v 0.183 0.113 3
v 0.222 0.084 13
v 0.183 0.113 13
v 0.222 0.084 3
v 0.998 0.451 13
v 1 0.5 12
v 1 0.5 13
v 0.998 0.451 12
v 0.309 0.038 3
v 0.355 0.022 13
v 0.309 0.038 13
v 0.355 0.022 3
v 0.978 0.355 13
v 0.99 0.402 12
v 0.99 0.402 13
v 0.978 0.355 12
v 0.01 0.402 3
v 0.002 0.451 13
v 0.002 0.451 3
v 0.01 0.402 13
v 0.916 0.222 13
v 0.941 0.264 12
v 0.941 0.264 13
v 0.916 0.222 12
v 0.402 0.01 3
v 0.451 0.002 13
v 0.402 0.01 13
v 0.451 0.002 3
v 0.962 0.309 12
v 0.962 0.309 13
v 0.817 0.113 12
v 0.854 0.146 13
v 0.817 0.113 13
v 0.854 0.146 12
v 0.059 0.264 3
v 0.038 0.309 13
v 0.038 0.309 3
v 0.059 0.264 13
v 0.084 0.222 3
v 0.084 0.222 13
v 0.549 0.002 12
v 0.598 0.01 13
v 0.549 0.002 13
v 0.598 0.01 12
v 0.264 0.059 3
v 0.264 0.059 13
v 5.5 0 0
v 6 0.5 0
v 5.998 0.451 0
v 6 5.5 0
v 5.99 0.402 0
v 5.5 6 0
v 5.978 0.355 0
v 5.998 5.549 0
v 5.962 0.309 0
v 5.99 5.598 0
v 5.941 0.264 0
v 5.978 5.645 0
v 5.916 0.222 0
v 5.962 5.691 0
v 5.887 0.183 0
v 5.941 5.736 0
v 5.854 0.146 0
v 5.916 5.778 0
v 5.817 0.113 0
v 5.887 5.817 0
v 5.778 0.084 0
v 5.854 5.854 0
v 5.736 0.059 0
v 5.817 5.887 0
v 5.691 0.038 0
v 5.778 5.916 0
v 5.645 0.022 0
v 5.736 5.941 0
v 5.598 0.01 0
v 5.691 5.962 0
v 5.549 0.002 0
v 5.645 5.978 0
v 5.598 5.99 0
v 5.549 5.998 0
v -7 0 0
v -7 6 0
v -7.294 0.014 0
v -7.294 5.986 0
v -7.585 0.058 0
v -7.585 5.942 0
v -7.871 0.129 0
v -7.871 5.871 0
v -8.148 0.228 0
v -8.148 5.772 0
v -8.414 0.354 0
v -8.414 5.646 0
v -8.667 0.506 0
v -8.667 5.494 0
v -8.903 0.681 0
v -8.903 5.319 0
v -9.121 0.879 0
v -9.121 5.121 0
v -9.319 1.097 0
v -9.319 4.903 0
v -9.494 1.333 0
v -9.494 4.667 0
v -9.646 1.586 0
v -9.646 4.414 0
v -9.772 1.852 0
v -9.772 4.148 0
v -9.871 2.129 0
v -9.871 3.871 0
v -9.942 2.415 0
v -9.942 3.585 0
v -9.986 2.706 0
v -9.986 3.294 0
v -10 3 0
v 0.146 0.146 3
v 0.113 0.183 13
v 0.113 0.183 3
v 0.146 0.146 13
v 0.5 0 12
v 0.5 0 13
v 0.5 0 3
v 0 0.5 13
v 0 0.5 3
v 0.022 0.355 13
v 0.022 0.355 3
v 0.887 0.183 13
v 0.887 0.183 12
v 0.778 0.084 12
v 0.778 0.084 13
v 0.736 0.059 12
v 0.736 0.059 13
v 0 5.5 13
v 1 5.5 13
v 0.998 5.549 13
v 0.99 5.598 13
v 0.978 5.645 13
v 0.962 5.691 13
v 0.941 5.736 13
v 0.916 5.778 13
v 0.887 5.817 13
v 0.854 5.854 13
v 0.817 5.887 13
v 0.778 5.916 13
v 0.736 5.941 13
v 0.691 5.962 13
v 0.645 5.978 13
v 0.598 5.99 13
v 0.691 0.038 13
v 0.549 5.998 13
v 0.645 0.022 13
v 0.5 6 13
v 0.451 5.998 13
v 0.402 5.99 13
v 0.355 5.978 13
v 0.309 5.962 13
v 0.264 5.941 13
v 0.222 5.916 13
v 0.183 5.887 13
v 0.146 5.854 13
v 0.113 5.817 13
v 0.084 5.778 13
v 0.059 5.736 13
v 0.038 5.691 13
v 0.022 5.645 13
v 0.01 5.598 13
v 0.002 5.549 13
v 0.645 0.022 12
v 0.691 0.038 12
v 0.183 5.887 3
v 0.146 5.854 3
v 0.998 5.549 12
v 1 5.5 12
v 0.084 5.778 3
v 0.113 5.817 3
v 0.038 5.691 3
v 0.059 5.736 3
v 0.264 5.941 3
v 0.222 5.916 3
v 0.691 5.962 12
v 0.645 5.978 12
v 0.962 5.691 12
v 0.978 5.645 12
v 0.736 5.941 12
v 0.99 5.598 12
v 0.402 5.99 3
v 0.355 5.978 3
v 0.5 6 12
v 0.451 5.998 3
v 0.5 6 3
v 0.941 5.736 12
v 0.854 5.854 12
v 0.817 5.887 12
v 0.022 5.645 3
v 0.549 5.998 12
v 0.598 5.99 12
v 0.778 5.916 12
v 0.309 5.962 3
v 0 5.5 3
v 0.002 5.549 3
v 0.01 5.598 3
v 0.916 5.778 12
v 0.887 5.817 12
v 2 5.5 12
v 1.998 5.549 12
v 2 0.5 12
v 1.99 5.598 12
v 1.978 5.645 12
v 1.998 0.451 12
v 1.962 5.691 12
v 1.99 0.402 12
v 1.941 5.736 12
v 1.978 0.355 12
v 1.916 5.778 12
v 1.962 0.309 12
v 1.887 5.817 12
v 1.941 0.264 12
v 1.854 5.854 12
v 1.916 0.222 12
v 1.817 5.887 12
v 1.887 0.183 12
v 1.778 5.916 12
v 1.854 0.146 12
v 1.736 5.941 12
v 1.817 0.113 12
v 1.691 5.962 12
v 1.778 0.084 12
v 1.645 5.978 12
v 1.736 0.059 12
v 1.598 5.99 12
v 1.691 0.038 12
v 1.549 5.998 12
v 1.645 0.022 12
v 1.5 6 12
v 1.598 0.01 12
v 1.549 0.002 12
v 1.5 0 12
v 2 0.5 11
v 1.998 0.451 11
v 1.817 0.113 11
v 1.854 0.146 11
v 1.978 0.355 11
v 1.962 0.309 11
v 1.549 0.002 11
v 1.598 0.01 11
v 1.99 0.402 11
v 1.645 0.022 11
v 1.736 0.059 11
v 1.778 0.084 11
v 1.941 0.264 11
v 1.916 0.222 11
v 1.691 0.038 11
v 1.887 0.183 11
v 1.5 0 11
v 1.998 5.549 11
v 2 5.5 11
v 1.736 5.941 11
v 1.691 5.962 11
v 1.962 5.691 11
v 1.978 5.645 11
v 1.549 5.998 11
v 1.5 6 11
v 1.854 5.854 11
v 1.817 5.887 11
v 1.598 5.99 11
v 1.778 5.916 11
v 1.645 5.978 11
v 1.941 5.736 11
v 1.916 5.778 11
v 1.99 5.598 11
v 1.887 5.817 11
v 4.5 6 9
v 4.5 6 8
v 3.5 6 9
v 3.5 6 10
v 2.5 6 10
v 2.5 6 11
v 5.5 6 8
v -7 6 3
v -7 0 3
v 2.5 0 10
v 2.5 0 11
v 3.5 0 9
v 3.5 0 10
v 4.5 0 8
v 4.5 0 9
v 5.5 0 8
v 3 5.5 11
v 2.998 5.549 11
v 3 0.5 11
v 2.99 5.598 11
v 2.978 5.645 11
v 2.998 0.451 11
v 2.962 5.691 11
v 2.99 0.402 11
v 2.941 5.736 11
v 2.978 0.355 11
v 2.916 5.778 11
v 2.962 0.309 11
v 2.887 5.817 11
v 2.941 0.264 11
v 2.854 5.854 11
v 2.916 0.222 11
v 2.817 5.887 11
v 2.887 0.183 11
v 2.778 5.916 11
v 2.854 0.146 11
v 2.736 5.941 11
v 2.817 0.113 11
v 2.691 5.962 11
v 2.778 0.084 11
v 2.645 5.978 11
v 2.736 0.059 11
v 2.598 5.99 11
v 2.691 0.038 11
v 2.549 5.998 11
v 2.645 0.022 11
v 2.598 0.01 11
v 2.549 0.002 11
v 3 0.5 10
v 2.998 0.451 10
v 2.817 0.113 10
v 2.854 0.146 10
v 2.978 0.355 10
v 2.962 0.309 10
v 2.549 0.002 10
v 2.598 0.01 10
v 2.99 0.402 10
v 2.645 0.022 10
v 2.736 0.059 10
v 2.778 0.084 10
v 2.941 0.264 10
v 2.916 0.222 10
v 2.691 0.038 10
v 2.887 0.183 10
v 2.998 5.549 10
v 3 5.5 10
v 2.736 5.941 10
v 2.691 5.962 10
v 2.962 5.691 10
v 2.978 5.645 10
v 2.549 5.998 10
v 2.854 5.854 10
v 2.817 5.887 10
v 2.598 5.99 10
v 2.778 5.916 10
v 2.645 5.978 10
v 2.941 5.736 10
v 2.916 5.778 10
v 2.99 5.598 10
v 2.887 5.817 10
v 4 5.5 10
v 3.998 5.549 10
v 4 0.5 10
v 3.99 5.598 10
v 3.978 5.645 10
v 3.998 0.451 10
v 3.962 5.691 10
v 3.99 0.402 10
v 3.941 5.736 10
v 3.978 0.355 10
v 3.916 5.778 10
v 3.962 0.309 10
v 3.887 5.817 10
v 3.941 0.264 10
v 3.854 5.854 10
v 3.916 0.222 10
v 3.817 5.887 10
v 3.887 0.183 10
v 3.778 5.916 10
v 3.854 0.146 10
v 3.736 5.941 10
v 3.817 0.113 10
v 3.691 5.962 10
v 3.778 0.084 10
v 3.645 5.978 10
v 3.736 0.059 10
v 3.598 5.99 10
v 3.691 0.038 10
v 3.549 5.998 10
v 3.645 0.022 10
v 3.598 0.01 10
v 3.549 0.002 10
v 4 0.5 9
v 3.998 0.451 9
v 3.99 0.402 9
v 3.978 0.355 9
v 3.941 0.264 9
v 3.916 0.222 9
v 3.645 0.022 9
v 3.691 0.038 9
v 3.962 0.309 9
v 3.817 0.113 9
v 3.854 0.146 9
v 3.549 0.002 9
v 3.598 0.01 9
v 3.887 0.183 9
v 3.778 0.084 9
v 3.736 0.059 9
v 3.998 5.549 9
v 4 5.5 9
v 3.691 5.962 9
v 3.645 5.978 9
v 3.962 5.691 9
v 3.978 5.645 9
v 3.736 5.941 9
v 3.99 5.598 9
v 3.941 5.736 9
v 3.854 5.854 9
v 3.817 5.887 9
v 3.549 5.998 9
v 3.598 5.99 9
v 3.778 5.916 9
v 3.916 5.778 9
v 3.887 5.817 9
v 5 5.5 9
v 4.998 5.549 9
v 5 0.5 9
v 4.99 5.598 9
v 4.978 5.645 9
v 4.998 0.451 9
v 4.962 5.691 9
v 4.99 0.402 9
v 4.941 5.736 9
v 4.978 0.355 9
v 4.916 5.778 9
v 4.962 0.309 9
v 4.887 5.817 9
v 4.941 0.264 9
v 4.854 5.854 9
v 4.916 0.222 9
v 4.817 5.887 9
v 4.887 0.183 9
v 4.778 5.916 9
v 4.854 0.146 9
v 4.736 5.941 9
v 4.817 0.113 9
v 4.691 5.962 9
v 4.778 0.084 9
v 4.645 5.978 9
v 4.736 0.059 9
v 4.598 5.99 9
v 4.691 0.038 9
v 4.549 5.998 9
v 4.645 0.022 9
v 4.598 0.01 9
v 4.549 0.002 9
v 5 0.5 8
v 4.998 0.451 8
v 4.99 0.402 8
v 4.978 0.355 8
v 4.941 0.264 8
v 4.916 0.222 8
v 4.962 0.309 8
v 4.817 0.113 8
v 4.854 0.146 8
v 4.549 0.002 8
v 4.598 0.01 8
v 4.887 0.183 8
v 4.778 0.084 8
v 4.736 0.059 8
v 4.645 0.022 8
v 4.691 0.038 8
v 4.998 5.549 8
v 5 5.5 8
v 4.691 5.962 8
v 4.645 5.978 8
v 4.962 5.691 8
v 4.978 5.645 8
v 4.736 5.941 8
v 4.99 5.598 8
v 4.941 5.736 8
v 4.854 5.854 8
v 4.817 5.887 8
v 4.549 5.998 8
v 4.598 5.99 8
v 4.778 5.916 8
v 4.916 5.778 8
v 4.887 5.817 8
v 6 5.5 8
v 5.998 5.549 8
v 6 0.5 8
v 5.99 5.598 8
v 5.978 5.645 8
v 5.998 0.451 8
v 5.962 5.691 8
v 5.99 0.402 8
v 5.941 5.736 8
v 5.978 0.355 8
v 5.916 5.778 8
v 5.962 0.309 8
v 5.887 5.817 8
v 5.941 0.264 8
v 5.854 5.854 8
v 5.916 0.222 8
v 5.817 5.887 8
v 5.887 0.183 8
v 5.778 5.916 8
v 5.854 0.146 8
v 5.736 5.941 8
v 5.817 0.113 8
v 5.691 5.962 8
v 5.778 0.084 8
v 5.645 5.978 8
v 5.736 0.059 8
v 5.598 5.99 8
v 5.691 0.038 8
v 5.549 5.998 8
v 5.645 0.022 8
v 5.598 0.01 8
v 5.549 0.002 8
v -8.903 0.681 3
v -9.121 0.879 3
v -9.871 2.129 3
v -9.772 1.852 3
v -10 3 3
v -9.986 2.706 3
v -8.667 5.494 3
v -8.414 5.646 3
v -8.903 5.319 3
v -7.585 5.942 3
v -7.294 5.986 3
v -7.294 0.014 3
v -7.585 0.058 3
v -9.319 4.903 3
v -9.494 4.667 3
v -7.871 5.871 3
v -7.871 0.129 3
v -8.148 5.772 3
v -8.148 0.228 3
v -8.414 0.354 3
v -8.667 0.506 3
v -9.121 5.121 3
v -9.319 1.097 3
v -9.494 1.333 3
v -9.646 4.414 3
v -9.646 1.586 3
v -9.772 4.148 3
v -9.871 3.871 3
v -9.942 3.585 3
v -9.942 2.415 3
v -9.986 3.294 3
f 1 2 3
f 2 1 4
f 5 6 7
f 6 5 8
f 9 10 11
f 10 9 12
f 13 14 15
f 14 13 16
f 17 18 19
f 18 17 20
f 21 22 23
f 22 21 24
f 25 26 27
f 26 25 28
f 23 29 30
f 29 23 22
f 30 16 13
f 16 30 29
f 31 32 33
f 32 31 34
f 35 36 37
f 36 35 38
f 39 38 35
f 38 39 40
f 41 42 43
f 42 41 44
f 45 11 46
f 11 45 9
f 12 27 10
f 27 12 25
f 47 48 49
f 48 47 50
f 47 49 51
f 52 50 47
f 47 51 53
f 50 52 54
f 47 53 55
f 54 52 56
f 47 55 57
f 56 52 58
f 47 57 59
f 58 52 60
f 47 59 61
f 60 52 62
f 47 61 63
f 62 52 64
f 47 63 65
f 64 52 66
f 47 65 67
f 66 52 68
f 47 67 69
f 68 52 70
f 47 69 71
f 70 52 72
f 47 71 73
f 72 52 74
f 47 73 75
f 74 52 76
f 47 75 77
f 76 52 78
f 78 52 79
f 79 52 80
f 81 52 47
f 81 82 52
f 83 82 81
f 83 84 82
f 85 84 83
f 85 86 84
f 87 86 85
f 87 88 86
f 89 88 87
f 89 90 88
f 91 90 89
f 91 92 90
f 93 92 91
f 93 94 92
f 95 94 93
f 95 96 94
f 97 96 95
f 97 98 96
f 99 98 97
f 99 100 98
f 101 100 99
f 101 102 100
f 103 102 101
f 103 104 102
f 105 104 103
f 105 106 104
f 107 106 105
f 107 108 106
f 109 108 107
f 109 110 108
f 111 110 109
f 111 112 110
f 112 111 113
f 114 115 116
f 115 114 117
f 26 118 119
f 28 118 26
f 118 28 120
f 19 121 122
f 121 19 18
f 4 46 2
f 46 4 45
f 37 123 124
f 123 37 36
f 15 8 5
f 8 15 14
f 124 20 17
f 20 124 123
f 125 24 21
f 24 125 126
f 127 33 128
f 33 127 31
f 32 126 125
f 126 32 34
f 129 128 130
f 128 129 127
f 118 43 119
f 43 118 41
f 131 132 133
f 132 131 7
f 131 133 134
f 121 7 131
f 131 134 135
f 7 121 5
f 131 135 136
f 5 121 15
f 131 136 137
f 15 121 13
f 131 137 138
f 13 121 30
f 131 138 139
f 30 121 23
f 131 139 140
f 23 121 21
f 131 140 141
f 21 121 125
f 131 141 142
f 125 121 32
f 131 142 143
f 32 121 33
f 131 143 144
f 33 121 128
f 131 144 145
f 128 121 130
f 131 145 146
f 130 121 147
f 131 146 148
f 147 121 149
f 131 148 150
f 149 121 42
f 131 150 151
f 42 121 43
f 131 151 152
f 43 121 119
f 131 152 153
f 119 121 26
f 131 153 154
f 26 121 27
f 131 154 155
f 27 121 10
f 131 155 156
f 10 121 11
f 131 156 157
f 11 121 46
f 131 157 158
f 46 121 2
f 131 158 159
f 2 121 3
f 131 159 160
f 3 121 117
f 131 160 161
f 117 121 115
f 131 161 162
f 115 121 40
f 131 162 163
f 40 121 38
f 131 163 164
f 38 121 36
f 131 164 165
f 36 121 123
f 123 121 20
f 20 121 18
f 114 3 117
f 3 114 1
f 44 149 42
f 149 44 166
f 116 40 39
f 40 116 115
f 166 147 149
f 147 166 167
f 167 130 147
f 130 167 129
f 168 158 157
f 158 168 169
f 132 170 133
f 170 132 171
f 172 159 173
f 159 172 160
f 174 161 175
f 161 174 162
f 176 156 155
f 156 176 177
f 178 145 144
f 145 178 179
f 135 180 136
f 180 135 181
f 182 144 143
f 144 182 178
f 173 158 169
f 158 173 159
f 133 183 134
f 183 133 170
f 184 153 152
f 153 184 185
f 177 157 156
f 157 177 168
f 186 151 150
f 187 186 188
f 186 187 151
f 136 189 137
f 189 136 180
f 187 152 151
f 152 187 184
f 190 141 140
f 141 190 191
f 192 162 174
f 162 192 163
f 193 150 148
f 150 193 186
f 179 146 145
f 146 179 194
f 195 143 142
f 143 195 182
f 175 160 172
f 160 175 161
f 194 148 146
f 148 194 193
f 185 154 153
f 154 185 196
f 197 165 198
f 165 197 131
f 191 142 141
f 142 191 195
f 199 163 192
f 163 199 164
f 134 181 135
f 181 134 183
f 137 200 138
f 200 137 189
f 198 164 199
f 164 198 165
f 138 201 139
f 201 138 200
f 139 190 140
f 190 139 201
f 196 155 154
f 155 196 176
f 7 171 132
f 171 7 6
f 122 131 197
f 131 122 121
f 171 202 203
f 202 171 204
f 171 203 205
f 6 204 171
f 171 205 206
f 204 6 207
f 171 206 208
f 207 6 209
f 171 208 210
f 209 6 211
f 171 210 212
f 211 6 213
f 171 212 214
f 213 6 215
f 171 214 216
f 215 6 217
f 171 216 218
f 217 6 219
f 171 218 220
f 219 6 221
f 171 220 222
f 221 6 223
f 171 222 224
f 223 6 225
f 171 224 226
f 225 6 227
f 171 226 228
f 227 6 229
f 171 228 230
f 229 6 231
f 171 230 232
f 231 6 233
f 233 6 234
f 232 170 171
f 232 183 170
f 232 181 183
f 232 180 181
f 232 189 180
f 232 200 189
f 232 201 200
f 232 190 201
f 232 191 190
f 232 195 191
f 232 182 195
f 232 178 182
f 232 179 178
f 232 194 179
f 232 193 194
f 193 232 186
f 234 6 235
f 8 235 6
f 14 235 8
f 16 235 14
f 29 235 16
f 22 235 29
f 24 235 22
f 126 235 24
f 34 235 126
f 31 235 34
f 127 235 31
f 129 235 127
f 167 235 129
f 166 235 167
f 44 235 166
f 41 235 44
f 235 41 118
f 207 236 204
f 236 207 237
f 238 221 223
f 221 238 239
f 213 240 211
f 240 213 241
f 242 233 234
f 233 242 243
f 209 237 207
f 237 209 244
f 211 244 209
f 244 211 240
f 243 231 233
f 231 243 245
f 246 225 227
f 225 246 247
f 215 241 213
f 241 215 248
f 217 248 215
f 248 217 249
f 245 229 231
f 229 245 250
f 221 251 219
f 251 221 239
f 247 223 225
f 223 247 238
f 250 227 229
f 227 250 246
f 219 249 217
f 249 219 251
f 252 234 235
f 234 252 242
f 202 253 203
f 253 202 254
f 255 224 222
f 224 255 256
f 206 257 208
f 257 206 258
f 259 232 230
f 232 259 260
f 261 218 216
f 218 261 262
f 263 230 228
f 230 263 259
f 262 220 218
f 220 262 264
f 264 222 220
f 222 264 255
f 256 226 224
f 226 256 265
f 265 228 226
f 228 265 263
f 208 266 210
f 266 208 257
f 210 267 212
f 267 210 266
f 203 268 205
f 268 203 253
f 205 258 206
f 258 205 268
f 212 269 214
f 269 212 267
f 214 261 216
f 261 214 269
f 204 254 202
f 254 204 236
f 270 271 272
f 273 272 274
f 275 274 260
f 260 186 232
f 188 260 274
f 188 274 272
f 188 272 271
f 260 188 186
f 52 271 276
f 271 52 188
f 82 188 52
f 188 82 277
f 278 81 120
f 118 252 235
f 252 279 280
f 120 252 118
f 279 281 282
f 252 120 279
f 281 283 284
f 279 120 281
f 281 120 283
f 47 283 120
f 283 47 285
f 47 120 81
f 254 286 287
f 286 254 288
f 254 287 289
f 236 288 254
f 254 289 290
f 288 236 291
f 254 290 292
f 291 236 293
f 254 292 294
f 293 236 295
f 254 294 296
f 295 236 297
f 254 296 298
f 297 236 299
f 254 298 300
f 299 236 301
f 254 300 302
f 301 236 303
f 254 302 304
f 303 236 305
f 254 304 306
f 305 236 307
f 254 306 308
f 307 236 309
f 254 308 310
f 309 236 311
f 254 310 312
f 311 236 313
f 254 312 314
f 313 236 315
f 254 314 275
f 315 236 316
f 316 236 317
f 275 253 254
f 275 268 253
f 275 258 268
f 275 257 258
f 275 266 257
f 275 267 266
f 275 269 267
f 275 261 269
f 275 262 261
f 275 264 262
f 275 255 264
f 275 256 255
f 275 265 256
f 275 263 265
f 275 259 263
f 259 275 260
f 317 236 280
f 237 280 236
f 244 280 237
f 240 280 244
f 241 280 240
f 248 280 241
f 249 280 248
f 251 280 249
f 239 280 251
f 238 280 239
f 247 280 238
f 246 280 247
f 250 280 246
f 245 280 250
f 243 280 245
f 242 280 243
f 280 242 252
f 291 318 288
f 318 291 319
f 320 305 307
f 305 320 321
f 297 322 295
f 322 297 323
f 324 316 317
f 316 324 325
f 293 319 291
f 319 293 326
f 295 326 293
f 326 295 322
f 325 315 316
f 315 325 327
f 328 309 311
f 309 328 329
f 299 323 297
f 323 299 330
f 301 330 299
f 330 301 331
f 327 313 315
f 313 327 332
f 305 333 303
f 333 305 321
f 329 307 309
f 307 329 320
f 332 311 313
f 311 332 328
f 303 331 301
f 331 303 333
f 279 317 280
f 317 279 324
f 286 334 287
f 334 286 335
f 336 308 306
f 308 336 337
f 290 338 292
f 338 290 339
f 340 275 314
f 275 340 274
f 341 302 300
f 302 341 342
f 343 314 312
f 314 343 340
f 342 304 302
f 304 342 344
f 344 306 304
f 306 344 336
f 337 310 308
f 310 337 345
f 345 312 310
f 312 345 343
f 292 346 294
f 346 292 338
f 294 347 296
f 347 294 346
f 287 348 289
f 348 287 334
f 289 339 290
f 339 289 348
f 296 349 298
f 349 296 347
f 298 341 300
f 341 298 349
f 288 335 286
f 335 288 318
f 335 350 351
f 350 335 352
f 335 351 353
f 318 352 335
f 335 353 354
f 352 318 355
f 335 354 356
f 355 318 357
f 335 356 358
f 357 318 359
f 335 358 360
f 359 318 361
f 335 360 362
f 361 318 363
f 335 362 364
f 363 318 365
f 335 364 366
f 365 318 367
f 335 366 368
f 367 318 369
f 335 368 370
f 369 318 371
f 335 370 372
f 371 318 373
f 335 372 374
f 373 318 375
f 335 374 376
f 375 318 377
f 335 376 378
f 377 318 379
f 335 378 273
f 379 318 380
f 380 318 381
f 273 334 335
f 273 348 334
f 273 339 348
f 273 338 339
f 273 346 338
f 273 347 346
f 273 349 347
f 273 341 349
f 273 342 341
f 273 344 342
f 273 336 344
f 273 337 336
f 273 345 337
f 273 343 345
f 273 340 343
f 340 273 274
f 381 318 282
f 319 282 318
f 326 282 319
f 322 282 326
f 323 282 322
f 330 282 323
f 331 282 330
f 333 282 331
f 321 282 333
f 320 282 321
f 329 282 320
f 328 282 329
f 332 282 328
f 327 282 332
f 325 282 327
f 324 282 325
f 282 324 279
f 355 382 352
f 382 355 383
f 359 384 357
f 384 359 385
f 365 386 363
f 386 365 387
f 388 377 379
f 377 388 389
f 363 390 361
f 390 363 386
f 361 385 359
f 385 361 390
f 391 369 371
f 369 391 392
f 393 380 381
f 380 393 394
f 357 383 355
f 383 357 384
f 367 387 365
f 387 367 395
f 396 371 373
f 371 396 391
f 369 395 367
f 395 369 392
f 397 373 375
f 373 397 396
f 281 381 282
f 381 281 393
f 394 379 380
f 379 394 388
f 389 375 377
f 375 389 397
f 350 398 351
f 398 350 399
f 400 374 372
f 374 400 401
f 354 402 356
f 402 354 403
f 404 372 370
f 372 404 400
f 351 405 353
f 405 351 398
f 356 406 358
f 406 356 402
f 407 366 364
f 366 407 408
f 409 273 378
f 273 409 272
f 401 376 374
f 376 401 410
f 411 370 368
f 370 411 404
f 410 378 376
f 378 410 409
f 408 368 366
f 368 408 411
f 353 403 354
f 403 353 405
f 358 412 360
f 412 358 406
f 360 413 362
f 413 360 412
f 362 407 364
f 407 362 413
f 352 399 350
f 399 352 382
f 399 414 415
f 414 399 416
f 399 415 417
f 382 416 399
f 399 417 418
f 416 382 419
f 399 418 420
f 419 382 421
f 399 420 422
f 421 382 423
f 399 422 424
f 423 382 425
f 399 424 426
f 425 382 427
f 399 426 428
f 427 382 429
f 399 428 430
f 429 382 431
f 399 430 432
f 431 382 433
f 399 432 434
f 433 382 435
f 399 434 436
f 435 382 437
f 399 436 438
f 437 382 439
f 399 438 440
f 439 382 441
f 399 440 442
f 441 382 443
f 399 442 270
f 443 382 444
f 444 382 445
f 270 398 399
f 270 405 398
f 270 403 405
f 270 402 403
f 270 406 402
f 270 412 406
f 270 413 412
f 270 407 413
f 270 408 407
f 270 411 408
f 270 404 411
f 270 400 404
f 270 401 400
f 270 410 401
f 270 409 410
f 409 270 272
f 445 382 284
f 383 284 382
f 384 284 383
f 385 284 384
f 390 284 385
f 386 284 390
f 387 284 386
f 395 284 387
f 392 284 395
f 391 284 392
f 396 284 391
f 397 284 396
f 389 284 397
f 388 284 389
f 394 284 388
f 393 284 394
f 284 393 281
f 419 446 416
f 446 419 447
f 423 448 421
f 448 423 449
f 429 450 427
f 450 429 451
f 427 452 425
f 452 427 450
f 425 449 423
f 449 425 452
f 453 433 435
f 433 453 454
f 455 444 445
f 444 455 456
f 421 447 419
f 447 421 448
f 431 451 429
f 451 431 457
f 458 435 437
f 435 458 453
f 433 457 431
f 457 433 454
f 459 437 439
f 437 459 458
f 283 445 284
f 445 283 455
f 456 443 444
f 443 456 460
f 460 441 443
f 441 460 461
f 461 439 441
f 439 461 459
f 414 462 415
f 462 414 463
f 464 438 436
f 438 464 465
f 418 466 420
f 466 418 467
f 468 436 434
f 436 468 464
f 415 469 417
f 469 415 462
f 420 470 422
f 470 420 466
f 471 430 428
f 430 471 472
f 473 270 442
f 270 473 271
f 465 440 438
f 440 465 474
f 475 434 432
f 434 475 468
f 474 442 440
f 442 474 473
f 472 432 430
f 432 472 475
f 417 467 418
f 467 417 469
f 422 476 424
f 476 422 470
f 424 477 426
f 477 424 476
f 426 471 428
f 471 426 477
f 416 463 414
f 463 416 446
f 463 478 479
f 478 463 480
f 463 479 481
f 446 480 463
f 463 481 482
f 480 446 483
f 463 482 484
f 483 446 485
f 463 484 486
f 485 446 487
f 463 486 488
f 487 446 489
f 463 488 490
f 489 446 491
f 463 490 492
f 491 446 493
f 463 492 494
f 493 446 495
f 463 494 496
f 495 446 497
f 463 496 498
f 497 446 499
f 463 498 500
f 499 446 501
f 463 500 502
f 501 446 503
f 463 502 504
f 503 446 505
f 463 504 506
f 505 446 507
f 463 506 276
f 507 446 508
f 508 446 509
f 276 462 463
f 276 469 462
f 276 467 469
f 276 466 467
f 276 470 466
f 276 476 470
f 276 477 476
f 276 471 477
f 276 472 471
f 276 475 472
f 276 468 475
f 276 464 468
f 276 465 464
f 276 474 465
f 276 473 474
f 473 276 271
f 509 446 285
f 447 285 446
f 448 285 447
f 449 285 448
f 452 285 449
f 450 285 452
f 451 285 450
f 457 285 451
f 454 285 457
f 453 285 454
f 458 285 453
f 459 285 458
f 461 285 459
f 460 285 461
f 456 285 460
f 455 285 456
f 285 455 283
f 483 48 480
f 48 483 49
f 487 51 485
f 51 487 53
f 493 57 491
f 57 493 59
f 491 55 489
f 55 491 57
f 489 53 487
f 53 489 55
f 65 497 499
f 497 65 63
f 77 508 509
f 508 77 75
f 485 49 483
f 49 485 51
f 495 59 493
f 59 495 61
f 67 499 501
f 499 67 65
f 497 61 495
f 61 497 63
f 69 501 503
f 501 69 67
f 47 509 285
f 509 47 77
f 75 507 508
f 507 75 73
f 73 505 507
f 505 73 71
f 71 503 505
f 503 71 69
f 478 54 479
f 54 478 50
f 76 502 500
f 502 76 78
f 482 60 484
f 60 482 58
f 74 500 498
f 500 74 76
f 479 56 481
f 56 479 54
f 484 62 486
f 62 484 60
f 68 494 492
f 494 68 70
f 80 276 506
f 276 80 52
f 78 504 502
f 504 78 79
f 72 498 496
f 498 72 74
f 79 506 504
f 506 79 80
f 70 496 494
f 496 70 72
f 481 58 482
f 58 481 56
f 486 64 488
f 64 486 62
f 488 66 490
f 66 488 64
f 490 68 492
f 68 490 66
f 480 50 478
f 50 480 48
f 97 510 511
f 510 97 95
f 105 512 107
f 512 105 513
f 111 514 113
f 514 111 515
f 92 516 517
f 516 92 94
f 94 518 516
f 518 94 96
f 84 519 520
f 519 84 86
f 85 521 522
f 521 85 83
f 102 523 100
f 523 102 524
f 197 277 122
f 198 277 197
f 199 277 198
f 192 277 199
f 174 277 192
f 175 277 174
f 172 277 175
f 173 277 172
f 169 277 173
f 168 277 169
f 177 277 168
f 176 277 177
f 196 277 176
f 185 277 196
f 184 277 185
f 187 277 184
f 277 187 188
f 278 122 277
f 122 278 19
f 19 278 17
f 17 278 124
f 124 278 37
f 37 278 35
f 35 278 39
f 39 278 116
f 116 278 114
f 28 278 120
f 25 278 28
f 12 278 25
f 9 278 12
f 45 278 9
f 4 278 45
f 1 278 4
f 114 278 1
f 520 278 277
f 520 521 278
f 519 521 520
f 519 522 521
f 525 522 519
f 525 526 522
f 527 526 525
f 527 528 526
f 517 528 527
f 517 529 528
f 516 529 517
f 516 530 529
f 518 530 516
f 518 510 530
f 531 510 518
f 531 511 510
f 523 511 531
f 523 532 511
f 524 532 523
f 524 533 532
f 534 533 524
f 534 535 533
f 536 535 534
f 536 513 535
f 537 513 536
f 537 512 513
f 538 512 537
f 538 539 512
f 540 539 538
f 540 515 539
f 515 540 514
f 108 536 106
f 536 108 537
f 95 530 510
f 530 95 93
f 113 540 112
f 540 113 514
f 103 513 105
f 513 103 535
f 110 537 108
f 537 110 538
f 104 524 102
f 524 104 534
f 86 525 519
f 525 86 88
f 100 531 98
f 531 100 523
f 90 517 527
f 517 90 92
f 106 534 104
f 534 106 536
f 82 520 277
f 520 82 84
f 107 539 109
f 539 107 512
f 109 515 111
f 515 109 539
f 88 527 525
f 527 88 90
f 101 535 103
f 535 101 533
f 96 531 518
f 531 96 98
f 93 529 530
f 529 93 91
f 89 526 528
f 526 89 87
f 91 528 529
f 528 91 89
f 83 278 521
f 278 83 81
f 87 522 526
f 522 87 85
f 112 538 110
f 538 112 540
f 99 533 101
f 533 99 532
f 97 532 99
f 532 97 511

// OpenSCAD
// file: utils.scad
e = 0.01;
2e = 0.02;

module torus(r1, r2, $fn = $fn) {
    rotate_extrude(convexity=2, $fn=$fn)
    difference() {
        translate([r1 - r2, 0, 0]) circle(r=r2, $fn=$fn);
        translate([-r2, 0, 0]) square(r2*2, true);
    }
}

module _hooled_toruses(x, y, r_xy, r_z) {
    translate([r_xy, r_xy, 0]) torus(r_xy, r_z);
    translate([x-r_xy, r_xy, 0]) torus(r_xy, r_z);
    translate([r_xy, y-r_xy, 0]) torus(r_xy, r_z);
    translate([x-r_xy, y-r_xy, 0]) torus(r_xy, r_z);
    
    translate([r_z, r_xy, 0]) rotate([-90, 0, 0]) cylinder(y-r_xy*2, r=r_z);
    translate([x-r_z, r_xy, 0]) rotate([-90, 0, 0]) cylinder(y-r_xy*2, r=r_z);
    translate([r_xy, r_z, 0]) rotate([0, 90, 0]) cylinder(x-r_xy*2, r=r_z);
    translate([r_xy, y-r_z, 0]) rotate([0, 90, 0]) cylinder(x-r_xy*2, r=r_z);
    
    translate([r_z, r_z, -r_z])
    rcube([x-r_z*2, y-r_z*2, r_z*2], r = r_xy-r_z, center = false);
}

module rsquare(size = [30, 10], r = [1, 1, 1, 1], center = true) {
    _r0 = is_num(r) ? r : r[0];
    _r1 = is_num(r) ? r : r[1];
    _r2 = is_num(r) ? r : r[2];
    _r3 = is_num(r) ? r : r[3];
    r0 = _r0 ? _r0 : e;
    r1 = _r1 ? _r1 : e;
    r2 = _r2 ? _r2 : e;
    r3 = _r3 ? _r3 : e;

    x = size[0]; y = size [1];

    tx = center ? -x/2 : 0;
    ty = center ? -y/2 : 0;

    tr_xy(tx, ty)
    hull () {
        tr_xy(r0, r0) circle(r0);
        tr_xy(r1, y - r1) circle(r1);
        tr_xy(x - r2, y - r2) circle(r2);
        tr_xy(x - r3, r3) circle(r3);
    }
}

module rcube(size = [10, 10, 10], center = true, r = 1, rtop = 0, rbottom = 0) {
    x = size[0]; y = size[1]; h = size[2];

    tx = center ? -x/2 : 0;
    ty = center ? -y/2 : 0;

    translate([tx, ty, 0]) {
        if (rtop == 0 && rbottom == 0) {
            translate([r, r, 0]) cylinder(h, r = r);
            translate([x-r, r, 0]) cylinder(h, r = r);
            translate([r, y-r, 0]) cylinder(h, r = r);
            translate([x-r, y-r, 0]) cylinder(h, r = r);
            translate([0, r, 0]) cube([x, y-r*2, h]);
            translate([r, 0, 0]) cube([x-r*2, y, h]);
        }
        if (rtop > 0 && rbottom == 0) {
            translate([0, 0, h-rtop]) _hooled_toruses(x, y, r, rtop);
            rcube([x, y, h-rtop], r = r, center = false);
        }
        if (rtop == 0 && rbottom > 0) {
            translate([0, 0, rbottom]) _hooled_toruses(x, y, r, rbottom);
            translate([0, 0, rbottom])
            rcube([x, y, h-rbottom], r = r, center = false);
        }
        if (rtop > 0 && rbottom > 0) {
            translate([0, 0, h-rtop]) _hooled_toruses(x, y, r, rtop);
            translate([0, 0, rbottom]) _hooled_toruses(x, y, r, rbottom);
            translate([0, 0, rbottom])
            rcube([x, y, h-rbottom-rtop], r = r, center = false);            
        }
    }
}

module rotate_x(angle) { rotate([angle, 0, 0]) children(); }
module rotate_y(angle) { rotate([0, angle, 0]) children(); }
module rotate_z(angle) { rotate([0, 0, angle]) children(); }

module tr_x(ofs) { translate([ofs, 0, 0]) children(); }
module tr_y(ofs) { translate([0, ofs, 0]) children(); }
module tr_z(ofs) { translate([0, 0, ofs]) children(); }
module tr_xy(ofs_x, ofs_y) { translate([ofs_x, ofs_y, 0]) children(); }

module mirror_x() { mirror([1, 0, 0]) children(); }
module mirror_y() { mirror([0, 1, 0]) children(); }
module mirror_z() { mirror([0, 0, 1]) children(); }
module mirror_xy() { mirror_x() mirror_y() children(); }

module dupe_x() { children(); mirror_x() children(); }
module dupe_y() { children(); mirror_y() children(); }
module dupe_xy() { children(); mirror_x() children(); mirror_y() children(); mirror_xy() children(); }
// main file
include <utils.scad>;

$fn = 64;

w=6;

rcube([1, w, 13], r = 0.5, center=false);
rcube([2, w, 12], r = 0.5, center=false);
rcube([3, w, 11], r = 0.5, center=false);
rcube([4, w, 10], r = 0.5, center=false);
rcube([5, w, 9], r = 0.5, center=false);
rcube([6, w, 8], r = 0.5, center=false);

tr_x(-10) rcube([16, w, 3], r = 3, center=false);
